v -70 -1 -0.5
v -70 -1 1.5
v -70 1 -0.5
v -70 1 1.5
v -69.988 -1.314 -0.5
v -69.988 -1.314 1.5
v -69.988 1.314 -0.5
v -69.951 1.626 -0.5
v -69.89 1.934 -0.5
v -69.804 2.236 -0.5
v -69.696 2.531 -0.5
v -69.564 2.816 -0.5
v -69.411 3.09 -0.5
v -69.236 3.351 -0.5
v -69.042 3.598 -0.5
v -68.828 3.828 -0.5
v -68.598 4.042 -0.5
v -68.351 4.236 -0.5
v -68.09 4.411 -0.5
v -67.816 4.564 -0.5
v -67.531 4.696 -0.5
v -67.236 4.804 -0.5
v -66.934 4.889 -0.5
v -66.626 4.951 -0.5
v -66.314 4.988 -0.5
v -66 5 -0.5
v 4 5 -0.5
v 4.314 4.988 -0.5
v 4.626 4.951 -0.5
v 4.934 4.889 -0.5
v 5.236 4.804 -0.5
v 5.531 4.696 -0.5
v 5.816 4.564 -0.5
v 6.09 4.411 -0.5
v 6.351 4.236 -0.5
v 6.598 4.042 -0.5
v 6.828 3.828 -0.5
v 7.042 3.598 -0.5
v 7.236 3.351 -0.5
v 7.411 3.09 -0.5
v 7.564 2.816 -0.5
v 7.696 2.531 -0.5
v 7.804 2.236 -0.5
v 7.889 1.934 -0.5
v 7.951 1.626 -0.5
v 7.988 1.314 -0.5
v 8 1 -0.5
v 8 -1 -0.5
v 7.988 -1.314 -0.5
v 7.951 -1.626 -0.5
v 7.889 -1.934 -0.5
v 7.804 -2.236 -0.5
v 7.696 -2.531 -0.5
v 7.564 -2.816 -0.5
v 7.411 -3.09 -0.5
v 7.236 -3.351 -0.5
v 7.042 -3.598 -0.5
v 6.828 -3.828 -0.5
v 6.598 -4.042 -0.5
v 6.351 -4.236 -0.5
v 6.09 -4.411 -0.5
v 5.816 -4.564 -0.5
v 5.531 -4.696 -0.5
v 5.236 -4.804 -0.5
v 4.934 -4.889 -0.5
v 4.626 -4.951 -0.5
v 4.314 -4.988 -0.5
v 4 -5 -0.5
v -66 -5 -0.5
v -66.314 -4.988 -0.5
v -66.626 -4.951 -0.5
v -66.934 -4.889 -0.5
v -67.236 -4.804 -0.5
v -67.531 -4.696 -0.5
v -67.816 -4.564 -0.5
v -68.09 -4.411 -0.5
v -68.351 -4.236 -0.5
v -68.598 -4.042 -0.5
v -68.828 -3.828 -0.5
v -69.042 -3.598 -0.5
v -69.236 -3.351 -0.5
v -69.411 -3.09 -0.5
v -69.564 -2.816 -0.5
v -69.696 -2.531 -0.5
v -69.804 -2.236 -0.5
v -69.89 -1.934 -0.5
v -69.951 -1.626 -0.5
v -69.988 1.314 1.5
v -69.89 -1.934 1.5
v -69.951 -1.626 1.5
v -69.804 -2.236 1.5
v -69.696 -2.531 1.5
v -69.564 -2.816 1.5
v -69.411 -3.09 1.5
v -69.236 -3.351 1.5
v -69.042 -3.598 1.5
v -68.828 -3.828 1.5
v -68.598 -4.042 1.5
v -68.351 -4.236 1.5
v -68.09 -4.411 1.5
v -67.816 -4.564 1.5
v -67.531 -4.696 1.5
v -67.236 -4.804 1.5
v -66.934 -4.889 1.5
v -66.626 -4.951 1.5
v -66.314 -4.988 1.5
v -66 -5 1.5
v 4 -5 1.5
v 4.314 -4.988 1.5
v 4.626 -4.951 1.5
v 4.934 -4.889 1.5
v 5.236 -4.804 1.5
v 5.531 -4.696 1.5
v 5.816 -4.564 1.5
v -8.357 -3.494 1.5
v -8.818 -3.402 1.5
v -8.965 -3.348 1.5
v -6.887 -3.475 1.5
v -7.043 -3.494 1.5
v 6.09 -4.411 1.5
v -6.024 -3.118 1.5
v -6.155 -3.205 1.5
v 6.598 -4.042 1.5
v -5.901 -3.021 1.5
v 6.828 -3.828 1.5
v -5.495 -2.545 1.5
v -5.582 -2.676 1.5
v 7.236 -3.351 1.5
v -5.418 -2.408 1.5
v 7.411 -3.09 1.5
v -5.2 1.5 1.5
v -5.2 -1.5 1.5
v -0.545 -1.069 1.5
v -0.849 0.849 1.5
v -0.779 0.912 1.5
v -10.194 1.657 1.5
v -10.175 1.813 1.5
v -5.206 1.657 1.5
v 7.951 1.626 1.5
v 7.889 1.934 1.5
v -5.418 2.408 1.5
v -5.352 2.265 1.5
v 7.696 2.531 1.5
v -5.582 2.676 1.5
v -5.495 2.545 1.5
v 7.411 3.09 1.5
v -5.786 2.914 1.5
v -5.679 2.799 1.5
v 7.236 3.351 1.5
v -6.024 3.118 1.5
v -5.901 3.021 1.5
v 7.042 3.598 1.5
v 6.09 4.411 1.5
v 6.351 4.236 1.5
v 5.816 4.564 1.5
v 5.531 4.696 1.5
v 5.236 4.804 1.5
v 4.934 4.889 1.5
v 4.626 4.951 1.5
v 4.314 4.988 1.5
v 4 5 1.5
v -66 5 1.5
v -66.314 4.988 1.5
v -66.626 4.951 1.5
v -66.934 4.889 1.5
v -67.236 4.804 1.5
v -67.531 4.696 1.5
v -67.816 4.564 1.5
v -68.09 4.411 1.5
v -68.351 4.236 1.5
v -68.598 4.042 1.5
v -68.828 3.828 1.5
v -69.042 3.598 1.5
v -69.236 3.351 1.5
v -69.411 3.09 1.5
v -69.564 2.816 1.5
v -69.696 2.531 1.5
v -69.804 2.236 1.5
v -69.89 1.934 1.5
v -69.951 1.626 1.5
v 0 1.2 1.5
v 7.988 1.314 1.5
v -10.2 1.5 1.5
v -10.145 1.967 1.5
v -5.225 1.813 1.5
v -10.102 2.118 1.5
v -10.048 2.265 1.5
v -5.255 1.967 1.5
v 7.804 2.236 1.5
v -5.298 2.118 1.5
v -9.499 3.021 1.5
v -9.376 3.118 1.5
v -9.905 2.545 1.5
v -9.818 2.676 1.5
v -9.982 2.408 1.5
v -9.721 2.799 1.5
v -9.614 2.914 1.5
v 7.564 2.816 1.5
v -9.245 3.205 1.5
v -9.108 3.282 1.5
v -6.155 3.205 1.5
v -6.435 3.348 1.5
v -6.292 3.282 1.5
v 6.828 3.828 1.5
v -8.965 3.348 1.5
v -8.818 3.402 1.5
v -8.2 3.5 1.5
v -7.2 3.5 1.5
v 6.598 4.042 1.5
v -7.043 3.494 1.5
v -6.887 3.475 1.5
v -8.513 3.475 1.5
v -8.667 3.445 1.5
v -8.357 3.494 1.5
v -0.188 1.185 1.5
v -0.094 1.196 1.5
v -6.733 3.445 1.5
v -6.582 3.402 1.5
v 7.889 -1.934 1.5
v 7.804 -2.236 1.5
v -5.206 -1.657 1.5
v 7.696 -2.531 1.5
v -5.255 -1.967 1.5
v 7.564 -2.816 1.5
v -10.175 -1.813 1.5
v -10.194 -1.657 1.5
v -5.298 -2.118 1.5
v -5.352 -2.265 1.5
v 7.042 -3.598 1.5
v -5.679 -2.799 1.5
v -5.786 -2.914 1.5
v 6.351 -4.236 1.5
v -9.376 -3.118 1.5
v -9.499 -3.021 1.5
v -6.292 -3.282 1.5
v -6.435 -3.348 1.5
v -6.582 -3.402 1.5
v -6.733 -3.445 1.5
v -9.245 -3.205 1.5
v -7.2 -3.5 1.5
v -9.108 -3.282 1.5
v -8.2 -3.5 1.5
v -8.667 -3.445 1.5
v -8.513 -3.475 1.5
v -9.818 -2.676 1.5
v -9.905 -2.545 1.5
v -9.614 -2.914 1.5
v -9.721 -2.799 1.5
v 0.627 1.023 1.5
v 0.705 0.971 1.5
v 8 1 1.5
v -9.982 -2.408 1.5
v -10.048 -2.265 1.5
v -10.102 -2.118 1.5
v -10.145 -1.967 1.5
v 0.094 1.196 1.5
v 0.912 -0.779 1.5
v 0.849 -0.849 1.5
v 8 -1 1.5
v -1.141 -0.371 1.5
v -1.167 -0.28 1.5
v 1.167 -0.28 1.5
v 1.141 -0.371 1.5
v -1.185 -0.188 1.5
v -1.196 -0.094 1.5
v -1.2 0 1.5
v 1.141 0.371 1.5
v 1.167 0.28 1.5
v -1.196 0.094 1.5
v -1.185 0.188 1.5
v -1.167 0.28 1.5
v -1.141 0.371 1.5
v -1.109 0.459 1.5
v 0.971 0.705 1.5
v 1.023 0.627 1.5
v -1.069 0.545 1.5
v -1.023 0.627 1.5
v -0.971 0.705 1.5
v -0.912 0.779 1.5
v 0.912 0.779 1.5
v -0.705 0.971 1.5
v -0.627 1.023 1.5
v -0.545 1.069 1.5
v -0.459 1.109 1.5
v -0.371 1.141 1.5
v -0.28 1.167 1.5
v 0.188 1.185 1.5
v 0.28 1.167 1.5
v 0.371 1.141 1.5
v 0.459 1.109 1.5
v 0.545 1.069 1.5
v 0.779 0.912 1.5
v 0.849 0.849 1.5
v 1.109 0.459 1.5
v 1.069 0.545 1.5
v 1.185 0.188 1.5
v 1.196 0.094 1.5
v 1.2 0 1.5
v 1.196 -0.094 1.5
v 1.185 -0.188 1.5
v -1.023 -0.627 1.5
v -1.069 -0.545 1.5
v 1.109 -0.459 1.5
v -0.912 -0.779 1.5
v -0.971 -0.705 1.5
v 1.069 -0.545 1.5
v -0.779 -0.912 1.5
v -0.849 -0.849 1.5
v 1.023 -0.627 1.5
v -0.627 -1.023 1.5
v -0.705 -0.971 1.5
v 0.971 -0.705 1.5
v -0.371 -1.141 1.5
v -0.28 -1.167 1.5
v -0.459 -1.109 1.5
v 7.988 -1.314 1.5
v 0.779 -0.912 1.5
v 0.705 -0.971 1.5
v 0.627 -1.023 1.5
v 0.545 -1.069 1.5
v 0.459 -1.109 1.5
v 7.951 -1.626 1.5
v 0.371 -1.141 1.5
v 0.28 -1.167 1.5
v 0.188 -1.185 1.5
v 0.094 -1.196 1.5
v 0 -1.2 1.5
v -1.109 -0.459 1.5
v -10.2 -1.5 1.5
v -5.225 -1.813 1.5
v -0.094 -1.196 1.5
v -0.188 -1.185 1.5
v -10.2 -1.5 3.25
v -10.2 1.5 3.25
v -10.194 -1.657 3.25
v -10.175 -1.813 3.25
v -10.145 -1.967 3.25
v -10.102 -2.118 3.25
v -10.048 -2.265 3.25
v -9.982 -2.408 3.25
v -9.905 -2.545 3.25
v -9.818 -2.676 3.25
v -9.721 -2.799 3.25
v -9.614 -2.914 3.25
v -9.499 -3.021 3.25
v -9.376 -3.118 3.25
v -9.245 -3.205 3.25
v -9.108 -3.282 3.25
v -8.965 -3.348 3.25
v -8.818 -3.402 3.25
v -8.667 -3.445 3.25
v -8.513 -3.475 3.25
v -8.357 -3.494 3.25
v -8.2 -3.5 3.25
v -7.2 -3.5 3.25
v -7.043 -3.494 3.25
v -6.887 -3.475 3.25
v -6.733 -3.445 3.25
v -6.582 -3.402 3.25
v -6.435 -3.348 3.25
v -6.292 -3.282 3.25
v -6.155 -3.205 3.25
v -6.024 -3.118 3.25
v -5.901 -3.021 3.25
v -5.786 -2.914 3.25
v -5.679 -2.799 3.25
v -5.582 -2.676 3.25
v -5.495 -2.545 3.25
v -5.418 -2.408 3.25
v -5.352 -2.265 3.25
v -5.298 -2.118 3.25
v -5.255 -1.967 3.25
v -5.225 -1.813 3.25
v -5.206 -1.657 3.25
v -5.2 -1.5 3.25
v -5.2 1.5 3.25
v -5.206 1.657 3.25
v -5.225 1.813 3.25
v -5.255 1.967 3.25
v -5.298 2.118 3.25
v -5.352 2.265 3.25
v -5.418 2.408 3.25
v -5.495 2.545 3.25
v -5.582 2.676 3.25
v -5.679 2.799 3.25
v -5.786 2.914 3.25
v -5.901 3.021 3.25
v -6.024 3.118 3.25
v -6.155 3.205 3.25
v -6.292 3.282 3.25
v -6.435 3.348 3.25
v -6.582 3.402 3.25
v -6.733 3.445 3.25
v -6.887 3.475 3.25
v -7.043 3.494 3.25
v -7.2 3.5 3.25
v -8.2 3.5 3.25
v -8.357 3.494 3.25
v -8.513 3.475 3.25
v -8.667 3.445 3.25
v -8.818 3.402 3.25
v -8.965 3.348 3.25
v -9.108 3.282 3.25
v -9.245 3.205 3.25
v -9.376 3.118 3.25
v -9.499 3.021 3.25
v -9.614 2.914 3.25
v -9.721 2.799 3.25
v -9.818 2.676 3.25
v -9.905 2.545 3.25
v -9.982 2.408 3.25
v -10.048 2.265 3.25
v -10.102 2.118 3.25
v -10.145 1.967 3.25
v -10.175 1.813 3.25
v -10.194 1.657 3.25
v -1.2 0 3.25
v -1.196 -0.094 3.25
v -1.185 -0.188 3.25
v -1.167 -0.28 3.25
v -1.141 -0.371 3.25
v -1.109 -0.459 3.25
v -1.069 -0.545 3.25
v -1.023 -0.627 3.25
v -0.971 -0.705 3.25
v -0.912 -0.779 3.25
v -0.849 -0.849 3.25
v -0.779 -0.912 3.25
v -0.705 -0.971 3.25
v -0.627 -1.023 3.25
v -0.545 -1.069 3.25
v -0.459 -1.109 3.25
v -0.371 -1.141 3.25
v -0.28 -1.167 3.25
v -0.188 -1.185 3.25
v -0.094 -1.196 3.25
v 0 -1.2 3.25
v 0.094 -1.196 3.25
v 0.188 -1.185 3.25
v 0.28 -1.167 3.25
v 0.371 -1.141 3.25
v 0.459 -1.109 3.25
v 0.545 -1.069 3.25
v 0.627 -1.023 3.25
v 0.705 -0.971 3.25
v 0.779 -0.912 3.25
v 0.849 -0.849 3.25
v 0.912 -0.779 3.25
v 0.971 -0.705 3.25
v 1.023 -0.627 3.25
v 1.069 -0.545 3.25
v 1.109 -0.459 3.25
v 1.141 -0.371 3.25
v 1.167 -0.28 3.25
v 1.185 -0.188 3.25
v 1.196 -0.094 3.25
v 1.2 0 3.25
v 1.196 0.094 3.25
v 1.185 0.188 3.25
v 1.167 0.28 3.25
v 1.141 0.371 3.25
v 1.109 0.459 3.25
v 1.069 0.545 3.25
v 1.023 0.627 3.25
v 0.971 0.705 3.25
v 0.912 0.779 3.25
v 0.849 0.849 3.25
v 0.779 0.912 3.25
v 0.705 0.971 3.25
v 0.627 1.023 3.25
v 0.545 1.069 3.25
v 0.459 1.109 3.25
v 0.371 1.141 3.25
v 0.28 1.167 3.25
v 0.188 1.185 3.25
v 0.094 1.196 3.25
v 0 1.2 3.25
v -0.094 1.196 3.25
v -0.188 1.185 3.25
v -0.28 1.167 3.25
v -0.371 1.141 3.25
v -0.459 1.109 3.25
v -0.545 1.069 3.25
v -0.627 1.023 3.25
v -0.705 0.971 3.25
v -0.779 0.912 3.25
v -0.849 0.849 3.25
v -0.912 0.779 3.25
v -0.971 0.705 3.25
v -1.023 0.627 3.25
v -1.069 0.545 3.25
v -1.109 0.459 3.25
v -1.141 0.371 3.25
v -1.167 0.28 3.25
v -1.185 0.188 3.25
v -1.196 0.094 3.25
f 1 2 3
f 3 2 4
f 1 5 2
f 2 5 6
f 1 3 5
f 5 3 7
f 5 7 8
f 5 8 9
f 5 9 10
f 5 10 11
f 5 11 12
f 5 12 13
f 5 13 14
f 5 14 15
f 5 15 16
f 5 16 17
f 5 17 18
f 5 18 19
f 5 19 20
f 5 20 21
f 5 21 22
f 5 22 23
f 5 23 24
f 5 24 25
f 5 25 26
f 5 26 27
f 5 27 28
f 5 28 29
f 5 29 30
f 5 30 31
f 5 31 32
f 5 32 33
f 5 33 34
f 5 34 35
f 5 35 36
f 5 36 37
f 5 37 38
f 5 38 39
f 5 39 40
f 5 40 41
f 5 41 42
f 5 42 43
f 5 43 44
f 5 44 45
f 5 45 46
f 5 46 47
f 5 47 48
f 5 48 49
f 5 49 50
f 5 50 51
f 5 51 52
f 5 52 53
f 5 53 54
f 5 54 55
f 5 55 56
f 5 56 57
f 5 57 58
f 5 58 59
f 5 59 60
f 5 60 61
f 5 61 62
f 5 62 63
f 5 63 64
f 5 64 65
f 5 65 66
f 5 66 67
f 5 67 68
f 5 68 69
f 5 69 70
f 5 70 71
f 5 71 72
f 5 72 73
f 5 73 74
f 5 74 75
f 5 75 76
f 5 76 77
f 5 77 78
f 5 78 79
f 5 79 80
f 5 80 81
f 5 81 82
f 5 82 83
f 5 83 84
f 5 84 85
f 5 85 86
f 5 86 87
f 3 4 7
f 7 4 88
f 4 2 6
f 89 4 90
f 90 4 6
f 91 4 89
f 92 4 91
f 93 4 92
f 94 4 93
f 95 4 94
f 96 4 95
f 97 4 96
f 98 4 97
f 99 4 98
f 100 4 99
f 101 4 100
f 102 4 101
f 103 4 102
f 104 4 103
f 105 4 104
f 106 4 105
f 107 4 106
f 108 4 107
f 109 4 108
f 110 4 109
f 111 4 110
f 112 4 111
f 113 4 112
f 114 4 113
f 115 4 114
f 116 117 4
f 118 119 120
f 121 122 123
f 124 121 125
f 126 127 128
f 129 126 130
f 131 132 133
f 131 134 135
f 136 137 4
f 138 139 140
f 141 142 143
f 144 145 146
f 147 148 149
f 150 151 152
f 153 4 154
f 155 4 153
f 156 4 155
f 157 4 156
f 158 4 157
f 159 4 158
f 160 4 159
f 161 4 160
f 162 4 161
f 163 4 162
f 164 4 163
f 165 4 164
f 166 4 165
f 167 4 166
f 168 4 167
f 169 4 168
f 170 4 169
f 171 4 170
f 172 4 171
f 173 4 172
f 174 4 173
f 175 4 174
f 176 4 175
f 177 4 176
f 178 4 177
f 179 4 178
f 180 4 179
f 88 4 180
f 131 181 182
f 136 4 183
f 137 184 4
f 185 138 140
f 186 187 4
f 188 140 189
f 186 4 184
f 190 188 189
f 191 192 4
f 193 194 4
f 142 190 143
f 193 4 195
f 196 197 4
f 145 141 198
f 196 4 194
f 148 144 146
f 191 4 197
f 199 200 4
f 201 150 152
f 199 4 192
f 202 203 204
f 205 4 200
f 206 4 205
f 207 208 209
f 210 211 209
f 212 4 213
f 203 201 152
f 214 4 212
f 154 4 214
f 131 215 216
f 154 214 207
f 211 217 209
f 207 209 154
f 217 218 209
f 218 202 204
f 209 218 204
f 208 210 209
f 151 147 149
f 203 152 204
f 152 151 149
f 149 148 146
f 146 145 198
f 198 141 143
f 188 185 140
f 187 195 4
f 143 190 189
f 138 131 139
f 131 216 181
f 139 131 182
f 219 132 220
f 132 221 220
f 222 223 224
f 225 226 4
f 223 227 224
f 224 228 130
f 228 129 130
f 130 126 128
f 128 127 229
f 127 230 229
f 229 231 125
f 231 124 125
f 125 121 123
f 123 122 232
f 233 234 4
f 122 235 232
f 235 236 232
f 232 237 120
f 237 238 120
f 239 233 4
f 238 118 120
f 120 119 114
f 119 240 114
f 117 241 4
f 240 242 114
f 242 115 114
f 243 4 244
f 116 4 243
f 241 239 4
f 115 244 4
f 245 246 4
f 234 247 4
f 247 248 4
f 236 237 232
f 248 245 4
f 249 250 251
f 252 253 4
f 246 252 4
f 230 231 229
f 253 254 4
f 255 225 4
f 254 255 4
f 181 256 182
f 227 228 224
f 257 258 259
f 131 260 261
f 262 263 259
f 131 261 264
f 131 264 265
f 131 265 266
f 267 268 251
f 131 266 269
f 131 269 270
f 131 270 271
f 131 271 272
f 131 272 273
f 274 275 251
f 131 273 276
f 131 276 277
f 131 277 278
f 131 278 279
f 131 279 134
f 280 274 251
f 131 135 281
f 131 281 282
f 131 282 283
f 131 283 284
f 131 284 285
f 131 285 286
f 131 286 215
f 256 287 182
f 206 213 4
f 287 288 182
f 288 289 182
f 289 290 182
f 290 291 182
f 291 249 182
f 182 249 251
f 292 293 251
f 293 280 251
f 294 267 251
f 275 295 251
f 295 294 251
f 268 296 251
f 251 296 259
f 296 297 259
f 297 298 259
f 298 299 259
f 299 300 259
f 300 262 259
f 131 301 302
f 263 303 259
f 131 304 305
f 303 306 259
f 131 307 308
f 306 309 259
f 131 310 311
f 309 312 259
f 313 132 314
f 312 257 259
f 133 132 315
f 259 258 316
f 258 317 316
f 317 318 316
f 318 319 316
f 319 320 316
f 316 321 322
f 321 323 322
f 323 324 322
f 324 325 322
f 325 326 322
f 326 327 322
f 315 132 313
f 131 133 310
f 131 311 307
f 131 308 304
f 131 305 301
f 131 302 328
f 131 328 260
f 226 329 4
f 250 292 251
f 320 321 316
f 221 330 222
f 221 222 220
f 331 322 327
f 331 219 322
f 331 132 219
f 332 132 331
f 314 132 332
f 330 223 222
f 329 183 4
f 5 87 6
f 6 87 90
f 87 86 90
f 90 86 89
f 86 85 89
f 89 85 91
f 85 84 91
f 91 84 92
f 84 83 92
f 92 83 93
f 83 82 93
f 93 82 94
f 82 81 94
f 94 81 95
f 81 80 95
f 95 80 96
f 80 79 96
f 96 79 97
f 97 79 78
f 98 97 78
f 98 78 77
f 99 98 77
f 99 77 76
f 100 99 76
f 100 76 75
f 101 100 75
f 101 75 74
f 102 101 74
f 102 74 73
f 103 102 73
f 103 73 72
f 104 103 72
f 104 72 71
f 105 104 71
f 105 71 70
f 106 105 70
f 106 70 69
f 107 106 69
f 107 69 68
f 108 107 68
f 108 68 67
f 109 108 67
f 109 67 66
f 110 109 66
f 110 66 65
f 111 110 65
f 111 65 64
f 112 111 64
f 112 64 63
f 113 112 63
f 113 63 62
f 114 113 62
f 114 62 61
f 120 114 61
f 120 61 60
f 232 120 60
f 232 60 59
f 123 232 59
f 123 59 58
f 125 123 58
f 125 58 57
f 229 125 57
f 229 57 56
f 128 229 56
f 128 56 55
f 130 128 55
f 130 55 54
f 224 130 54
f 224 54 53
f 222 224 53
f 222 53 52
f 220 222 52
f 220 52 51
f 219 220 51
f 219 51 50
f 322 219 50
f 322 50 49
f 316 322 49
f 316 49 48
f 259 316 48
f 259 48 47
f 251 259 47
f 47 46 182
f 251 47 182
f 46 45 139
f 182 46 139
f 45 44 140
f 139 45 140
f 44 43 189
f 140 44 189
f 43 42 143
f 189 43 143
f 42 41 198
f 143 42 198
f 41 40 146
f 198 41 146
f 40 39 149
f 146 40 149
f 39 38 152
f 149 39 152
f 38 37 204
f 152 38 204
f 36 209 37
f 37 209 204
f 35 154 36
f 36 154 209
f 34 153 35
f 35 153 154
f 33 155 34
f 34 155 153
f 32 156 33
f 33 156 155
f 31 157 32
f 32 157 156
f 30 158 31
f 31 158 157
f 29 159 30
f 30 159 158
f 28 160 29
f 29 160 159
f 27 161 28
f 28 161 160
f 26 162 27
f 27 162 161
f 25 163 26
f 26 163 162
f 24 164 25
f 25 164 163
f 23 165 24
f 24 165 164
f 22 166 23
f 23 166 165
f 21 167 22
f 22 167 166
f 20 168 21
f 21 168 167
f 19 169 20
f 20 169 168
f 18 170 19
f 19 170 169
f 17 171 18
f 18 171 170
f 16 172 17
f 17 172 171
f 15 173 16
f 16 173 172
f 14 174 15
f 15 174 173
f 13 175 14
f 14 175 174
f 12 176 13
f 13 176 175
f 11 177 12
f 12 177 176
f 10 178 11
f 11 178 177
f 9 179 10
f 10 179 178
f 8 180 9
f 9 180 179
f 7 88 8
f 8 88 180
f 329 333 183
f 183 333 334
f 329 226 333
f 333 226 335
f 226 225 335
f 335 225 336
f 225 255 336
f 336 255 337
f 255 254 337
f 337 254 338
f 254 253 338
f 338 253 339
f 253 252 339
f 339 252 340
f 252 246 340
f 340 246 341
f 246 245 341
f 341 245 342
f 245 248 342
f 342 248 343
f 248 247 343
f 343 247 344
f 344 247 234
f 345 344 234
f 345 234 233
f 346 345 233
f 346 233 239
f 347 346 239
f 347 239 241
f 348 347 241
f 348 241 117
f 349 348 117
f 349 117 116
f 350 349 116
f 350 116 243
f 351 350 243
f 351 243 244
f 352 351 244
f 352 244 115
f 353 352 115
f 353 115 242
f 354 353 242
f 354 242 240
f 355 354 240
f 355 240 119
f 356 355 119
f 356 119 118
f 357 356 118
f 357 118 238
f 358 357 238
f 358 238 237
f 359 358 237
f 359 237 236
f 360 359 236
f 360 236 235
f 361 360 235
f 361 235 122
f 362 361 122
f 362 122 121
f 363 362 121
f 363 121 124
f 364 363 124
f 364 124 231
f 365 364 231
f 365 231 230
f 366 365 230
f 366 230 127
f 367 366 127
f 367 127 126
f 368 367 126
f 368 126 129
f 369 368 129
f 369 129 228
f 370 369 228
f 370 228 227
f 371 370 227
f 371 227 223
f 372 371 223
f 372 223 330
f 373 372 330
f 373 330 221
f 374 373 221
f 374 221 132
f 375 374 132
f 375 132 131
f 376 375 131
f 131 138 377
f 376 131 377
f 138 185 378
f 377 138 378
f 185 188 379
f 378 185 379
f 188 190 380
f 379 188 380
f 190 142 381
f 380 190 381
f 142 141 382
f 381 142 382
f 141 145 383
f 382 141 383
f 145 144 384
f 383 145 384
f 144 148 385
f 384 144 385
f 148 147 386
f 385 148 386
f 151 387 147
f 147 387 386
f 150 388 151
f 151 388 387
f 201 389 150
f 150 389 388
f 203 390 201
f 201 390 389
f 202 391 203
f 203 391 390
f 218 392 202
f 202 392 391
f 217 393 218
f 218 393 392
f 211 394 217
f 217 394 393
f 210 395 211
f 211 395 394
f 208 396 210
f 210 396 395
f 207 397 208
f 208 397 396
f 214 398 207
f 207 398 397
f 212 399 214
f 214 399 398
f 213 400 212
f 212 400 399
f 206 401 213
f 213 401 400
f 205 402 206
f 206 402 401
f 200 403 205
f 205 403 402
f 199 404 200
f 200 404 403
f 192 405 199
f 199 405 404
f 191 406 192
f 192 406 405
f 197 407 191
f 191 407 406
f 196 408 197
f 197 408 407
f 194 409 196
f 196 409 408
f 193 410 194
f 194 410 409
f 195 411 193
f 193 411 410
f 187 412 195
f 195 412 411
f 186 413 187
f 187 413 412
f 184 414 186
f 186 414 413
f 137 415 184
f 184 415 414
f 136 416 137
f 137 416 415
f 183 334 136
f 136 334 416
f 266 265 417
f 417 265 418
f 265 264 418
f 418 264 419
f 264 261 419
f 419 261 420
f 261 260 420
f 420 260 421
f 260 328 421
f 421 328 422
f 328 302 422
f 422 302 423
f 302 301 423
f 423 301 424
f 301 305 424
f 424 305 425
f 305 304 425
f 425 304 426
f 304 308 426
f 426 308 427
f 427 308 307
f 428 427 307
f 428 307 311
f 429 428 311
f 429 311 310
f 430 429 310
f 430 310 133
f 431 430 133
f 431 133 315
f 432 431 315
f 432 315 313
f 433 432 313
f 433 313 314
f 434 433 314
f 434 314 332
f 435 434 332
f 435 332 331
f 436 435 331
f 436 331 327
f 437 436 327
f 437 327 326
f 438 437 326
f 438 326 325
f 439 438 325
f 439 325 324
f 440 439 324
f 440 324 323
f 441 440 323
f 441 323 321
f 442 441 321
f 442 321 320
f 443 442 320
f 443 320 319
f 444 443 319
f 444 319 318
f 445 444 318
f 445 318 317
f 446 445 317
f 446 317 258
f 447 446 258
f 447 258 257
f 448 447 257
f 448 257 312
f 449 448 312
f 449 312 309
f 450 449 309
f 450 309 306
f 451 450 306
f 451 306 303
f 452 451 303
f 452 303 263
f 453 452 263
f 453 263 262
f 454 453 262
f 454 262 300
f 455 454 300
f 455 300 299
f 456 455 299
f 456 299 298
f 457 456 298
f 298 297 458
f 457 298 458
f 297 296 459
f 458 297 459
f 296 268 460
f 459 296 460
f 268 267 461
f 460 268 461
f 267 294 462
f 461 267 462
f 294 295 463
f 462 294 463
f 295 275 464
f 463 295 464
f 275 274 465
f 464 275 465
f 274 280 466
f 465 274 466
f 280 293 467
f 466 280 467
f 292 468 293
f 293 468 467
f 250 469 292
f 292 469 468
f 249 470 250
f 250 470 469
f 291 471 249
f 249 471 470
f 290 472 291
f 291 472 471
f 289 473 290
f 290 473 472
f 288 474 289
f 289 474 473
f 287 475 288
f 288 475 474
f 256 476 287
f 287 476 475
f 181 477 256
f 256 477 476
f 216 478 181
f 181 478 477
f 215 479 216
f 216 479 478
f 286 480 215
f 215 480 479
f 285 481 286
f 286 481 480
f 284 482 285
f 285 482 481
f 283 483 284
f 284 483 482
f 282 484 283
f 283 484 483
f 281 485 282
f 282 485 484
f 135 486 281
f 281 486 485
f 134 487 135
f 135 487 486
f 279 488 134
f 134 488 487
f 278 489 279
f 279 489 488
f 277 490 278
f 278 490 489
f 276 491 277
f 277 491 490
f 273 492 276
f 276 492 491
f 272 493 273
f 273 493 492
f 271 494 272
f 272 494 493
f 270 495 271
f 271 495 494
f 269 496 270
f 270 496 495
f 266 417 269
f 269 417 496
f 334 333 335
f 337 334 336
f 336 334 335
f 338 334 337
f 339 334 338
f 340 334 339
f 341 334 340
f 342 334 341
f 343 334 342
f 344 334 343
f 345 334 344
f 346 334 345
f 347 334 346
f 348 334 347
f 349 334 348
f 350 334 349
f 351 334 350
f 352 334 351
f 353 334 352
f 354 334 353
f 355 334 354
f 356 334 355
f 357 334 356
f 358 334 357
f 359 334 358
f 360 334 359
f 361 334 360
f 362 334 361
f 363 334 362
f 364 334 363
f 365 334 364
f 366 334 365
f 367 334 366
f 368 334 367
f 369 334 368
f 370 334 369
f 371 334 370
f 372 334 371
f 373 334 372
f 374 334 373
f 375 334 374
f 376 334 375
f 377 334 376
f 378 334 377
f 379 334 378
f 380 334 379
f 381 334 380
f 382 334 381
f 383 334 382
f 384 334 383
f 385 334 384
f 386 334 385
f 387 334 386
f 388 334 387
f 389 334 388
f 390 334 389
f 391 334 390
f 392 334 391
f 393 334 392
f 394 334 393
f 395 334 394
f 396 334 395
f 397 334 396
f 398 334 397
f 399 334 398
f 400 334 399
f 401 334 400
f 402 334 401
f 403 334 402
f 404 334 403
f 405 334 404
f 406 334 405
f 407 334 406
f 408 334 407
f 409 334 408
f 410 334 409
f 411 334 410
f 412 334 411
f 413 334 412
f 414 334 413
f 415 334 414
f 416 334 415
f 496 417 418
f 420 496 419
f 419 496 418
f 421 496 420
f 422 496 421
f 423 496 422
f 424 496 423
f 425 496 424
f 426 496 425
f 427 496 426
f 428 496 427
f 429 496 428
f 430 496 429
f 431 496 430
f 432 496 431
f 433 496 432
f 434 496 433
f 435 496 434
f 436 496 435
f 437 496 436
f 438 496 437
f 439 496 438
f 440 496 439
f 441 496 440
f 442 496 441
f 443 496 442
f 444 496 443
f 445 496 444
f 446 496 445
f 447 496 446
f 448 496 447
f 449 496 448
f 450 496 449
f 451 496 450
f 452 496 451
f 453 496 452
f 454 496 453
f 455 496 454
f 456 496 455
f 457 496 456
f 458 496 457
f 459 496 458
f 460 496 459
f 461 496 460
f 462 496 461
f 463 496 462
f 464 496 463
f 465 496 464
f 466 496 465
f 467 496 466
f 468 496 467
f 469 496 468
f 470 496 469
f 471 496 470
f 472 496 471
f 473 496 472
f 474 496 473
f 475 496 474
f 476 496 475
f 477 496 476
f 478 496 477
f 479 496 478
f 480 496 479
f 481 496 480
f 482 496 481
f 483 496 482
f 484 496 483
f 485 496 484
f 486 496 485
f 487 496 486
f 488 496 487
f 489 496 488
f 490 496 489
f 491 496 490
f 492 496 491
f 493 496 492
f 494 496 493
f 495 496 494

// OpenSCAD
$fn=80;
// A file to generate a tool to hold t-nuts for 2020

%translate([0,0,1])rotate([0,90,0])tnut();
translate([-70/2+4,0,0]) tnut_tool();

//%cube([10,10,10],center=true);

module tnut(){
  difference(){
   union() {
    cylinder(h=10,r=5*1.15,center=true,$fn=3);
    translate([-1.35,0,0])cube([4.1,5.77,10],center=true);
   }
   translate([4.7,0,0])cube([8,8,11],center=true);
   rotate([0,90,0]) cylinder(h=8,r=1.5,center=true);
  }
}

module tnut_tool(){
  minkowski() {
    cube([70,2,1],center=true);
    cylinder(h=1, r=4);
  }
  translate([70/2-4,0,1.5]) cylinder(h=3.5,r=2.4/2,center=true);
  translate([70/2-4-7.7,0,1.5]) 
  minkowski() {
    cube([1,3,1.5],center=true);
    cylinder(h=1, r=2);
  }
  
}
